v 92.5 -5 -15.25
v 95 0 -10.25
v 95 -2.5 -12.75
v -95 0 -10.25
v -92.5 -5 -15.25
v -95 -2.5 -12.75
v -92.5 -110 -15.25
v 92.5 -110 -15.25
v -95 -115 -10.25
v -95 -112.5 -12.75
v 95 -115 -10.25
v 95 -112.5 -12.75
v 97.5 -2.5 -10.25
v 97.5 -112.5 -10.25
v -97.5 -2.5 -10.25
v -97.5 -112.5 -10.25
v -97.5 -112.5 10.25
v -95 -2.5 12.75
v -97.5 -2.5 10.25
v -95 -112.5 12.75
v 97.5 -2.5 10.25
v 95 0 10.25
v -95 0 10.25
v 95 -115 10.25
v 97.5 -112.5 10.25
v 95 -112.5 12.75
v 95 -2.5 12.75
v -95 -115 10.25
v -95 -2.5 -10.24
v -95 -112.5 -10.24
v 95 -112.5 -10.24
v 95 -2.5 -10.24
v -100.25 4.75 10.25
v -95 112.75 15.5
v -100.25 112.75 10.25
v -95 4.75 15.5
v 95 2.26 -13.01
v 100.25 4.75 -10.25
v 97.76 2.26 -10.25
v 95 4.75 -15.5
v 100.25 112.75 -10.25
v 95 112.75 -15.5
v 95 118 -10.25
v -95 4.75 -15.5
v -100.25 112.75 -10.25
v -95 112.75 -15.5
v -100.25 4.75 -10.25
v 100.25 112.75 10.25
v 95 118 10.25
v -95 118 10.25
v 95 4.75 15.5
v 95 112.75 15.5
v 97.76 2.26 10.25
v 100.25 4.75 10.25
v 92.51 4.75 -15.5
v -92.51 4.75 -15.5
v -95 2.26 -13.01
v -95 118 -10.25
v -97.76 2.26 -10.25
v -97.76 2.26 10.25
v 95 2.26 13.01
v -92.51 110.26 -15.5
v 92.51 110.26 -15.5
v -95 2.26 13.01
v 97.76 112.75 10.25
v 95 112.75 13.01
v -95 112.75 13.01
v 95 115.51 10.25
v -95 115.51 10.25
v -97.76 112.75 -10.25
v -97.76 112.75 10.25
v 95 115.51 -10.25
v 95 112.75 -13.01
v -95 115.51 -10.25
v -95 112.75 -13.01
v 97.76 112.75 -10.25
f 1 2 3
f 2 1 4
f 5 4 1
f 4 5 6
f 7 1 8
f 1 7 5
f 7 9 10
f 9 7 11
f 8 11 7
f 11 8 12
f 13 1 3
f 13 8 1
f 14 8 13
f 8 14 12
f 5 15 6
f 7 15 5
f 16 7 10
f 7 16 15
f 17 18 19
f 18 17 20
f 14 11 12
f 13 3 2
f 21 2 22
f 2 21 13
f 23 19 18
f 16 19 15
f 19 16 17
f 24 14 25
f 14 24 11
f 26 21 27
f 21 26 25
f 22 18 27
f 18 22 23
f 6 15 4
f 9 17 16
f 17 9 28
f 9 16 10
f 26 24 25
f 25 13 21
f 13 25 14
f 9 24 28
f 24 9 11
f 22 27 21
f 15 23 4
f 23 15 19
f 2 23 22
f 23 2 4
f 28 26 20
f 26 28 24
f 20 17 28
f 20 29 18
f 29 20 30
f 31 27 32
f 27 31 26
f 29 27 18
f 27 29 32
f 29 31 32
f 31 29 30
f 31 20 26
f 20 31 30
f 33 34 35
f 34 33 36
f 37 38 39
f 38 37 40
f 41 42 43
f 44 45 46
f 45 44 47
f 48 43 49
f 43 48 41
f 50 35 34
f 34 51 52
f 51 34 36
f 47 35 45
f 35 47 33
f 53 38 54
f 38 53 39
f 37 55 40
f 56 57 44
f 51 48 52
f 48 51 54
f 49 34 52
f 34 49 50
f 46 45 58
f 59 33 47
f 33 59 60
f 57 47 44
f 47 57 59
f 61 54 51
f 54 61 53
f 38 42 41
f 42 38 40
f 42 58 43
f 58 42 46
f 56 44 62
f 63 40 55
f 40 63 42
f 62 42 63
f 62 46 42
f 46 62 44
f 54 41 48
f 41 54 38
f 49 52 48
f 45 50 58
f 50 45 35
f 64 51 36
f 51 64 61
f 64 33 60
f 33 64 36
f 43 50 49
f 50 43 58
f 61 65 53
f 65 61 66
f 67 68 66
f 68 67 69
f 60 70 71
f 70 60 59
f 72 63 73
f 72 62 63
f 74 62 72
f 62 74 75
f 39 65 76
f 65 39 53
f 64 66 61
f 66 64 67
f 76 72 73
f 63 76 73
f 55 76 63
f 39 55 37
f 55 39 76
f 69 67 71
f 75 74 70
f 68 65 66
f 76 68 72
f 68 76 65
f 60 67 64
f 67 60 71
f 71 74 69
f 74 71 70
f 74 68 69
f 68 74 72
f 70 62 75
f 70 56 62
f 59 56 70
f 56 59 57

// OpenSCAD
/* Villano OpenSCAD 2021.1 */
Interior_Width=190; //[300]
Interior_Depth = 110; //[300]
Interior_Height=23; //[300]
Wall_Thickness=2.5; //[1:.5:30]
Clearance=.25; //[0:.05:1]

w=Interior_Width;
d=Interior_Depth;
h=Interior_Height;
twt=Wall_Thickness;
slop=Clearance;

module octahedron(r){
    scale(r) polyhedron(
        points=[
            [ 0,  0,  1],
            [ 1,  0,  0],
            [ 0,  1,  0],
            [-1,  0,  0],
            [ 0, -1,  0],
            [ 0,  0, -1],
        ],
        faces=[
            [0, 1, 2],
            [0, 2, 3],
            [0, 3, 4],
            [0, 4, 1],
            [5, 2, 1],
            [5, 3, 2],
            [5, 4, 3],
            [5, 1, 4],
        ]
    );
}

module drawer(w,d,h,solid=false) {
    difference(){
        union(){
            minkowski(){
                cube([w,d,h-twt],center=true);
                octahedron(twt);
            }
            translate([0,0,-twt]) intersection(){
                minkowski(){
                    cube([w-2*twt,d-2*twt,h-3*twt],center=true);
                    rotate([0,90,0])
                        cylinder(r=2*twt,h=2*twt,center=true,$fn=4);
                }
                minkowski(){
                    cube([w-2*twt,d-2*twt,h-3*twt],center=true);
                    rotate([90,0,0])
                        cylinder(r=2*twt,h=2*twt,center=true,$fn=4);
                }
            }
        }
        if (!solid) translate([0, 0, twt/2+.01])
            cube([w,d,h], center=true);
    }
}
module lid() translate([0,twt/2,0]) difference(){
    minkowski(){
        cube([w,d-twt+2*slop,h-twt], center=true);
        octahedron(2*twt+slop);
    }
    translate([0,-twt/2,0]) minkowski(){
        drawer(w,d+2*slop,h,solid=true);
        octahedron(slop+.01);
    }
}

translate([0,-d/2-twt,0]) drawer(w,d,h);
translate([0,d/2+twt,0]) lid();
